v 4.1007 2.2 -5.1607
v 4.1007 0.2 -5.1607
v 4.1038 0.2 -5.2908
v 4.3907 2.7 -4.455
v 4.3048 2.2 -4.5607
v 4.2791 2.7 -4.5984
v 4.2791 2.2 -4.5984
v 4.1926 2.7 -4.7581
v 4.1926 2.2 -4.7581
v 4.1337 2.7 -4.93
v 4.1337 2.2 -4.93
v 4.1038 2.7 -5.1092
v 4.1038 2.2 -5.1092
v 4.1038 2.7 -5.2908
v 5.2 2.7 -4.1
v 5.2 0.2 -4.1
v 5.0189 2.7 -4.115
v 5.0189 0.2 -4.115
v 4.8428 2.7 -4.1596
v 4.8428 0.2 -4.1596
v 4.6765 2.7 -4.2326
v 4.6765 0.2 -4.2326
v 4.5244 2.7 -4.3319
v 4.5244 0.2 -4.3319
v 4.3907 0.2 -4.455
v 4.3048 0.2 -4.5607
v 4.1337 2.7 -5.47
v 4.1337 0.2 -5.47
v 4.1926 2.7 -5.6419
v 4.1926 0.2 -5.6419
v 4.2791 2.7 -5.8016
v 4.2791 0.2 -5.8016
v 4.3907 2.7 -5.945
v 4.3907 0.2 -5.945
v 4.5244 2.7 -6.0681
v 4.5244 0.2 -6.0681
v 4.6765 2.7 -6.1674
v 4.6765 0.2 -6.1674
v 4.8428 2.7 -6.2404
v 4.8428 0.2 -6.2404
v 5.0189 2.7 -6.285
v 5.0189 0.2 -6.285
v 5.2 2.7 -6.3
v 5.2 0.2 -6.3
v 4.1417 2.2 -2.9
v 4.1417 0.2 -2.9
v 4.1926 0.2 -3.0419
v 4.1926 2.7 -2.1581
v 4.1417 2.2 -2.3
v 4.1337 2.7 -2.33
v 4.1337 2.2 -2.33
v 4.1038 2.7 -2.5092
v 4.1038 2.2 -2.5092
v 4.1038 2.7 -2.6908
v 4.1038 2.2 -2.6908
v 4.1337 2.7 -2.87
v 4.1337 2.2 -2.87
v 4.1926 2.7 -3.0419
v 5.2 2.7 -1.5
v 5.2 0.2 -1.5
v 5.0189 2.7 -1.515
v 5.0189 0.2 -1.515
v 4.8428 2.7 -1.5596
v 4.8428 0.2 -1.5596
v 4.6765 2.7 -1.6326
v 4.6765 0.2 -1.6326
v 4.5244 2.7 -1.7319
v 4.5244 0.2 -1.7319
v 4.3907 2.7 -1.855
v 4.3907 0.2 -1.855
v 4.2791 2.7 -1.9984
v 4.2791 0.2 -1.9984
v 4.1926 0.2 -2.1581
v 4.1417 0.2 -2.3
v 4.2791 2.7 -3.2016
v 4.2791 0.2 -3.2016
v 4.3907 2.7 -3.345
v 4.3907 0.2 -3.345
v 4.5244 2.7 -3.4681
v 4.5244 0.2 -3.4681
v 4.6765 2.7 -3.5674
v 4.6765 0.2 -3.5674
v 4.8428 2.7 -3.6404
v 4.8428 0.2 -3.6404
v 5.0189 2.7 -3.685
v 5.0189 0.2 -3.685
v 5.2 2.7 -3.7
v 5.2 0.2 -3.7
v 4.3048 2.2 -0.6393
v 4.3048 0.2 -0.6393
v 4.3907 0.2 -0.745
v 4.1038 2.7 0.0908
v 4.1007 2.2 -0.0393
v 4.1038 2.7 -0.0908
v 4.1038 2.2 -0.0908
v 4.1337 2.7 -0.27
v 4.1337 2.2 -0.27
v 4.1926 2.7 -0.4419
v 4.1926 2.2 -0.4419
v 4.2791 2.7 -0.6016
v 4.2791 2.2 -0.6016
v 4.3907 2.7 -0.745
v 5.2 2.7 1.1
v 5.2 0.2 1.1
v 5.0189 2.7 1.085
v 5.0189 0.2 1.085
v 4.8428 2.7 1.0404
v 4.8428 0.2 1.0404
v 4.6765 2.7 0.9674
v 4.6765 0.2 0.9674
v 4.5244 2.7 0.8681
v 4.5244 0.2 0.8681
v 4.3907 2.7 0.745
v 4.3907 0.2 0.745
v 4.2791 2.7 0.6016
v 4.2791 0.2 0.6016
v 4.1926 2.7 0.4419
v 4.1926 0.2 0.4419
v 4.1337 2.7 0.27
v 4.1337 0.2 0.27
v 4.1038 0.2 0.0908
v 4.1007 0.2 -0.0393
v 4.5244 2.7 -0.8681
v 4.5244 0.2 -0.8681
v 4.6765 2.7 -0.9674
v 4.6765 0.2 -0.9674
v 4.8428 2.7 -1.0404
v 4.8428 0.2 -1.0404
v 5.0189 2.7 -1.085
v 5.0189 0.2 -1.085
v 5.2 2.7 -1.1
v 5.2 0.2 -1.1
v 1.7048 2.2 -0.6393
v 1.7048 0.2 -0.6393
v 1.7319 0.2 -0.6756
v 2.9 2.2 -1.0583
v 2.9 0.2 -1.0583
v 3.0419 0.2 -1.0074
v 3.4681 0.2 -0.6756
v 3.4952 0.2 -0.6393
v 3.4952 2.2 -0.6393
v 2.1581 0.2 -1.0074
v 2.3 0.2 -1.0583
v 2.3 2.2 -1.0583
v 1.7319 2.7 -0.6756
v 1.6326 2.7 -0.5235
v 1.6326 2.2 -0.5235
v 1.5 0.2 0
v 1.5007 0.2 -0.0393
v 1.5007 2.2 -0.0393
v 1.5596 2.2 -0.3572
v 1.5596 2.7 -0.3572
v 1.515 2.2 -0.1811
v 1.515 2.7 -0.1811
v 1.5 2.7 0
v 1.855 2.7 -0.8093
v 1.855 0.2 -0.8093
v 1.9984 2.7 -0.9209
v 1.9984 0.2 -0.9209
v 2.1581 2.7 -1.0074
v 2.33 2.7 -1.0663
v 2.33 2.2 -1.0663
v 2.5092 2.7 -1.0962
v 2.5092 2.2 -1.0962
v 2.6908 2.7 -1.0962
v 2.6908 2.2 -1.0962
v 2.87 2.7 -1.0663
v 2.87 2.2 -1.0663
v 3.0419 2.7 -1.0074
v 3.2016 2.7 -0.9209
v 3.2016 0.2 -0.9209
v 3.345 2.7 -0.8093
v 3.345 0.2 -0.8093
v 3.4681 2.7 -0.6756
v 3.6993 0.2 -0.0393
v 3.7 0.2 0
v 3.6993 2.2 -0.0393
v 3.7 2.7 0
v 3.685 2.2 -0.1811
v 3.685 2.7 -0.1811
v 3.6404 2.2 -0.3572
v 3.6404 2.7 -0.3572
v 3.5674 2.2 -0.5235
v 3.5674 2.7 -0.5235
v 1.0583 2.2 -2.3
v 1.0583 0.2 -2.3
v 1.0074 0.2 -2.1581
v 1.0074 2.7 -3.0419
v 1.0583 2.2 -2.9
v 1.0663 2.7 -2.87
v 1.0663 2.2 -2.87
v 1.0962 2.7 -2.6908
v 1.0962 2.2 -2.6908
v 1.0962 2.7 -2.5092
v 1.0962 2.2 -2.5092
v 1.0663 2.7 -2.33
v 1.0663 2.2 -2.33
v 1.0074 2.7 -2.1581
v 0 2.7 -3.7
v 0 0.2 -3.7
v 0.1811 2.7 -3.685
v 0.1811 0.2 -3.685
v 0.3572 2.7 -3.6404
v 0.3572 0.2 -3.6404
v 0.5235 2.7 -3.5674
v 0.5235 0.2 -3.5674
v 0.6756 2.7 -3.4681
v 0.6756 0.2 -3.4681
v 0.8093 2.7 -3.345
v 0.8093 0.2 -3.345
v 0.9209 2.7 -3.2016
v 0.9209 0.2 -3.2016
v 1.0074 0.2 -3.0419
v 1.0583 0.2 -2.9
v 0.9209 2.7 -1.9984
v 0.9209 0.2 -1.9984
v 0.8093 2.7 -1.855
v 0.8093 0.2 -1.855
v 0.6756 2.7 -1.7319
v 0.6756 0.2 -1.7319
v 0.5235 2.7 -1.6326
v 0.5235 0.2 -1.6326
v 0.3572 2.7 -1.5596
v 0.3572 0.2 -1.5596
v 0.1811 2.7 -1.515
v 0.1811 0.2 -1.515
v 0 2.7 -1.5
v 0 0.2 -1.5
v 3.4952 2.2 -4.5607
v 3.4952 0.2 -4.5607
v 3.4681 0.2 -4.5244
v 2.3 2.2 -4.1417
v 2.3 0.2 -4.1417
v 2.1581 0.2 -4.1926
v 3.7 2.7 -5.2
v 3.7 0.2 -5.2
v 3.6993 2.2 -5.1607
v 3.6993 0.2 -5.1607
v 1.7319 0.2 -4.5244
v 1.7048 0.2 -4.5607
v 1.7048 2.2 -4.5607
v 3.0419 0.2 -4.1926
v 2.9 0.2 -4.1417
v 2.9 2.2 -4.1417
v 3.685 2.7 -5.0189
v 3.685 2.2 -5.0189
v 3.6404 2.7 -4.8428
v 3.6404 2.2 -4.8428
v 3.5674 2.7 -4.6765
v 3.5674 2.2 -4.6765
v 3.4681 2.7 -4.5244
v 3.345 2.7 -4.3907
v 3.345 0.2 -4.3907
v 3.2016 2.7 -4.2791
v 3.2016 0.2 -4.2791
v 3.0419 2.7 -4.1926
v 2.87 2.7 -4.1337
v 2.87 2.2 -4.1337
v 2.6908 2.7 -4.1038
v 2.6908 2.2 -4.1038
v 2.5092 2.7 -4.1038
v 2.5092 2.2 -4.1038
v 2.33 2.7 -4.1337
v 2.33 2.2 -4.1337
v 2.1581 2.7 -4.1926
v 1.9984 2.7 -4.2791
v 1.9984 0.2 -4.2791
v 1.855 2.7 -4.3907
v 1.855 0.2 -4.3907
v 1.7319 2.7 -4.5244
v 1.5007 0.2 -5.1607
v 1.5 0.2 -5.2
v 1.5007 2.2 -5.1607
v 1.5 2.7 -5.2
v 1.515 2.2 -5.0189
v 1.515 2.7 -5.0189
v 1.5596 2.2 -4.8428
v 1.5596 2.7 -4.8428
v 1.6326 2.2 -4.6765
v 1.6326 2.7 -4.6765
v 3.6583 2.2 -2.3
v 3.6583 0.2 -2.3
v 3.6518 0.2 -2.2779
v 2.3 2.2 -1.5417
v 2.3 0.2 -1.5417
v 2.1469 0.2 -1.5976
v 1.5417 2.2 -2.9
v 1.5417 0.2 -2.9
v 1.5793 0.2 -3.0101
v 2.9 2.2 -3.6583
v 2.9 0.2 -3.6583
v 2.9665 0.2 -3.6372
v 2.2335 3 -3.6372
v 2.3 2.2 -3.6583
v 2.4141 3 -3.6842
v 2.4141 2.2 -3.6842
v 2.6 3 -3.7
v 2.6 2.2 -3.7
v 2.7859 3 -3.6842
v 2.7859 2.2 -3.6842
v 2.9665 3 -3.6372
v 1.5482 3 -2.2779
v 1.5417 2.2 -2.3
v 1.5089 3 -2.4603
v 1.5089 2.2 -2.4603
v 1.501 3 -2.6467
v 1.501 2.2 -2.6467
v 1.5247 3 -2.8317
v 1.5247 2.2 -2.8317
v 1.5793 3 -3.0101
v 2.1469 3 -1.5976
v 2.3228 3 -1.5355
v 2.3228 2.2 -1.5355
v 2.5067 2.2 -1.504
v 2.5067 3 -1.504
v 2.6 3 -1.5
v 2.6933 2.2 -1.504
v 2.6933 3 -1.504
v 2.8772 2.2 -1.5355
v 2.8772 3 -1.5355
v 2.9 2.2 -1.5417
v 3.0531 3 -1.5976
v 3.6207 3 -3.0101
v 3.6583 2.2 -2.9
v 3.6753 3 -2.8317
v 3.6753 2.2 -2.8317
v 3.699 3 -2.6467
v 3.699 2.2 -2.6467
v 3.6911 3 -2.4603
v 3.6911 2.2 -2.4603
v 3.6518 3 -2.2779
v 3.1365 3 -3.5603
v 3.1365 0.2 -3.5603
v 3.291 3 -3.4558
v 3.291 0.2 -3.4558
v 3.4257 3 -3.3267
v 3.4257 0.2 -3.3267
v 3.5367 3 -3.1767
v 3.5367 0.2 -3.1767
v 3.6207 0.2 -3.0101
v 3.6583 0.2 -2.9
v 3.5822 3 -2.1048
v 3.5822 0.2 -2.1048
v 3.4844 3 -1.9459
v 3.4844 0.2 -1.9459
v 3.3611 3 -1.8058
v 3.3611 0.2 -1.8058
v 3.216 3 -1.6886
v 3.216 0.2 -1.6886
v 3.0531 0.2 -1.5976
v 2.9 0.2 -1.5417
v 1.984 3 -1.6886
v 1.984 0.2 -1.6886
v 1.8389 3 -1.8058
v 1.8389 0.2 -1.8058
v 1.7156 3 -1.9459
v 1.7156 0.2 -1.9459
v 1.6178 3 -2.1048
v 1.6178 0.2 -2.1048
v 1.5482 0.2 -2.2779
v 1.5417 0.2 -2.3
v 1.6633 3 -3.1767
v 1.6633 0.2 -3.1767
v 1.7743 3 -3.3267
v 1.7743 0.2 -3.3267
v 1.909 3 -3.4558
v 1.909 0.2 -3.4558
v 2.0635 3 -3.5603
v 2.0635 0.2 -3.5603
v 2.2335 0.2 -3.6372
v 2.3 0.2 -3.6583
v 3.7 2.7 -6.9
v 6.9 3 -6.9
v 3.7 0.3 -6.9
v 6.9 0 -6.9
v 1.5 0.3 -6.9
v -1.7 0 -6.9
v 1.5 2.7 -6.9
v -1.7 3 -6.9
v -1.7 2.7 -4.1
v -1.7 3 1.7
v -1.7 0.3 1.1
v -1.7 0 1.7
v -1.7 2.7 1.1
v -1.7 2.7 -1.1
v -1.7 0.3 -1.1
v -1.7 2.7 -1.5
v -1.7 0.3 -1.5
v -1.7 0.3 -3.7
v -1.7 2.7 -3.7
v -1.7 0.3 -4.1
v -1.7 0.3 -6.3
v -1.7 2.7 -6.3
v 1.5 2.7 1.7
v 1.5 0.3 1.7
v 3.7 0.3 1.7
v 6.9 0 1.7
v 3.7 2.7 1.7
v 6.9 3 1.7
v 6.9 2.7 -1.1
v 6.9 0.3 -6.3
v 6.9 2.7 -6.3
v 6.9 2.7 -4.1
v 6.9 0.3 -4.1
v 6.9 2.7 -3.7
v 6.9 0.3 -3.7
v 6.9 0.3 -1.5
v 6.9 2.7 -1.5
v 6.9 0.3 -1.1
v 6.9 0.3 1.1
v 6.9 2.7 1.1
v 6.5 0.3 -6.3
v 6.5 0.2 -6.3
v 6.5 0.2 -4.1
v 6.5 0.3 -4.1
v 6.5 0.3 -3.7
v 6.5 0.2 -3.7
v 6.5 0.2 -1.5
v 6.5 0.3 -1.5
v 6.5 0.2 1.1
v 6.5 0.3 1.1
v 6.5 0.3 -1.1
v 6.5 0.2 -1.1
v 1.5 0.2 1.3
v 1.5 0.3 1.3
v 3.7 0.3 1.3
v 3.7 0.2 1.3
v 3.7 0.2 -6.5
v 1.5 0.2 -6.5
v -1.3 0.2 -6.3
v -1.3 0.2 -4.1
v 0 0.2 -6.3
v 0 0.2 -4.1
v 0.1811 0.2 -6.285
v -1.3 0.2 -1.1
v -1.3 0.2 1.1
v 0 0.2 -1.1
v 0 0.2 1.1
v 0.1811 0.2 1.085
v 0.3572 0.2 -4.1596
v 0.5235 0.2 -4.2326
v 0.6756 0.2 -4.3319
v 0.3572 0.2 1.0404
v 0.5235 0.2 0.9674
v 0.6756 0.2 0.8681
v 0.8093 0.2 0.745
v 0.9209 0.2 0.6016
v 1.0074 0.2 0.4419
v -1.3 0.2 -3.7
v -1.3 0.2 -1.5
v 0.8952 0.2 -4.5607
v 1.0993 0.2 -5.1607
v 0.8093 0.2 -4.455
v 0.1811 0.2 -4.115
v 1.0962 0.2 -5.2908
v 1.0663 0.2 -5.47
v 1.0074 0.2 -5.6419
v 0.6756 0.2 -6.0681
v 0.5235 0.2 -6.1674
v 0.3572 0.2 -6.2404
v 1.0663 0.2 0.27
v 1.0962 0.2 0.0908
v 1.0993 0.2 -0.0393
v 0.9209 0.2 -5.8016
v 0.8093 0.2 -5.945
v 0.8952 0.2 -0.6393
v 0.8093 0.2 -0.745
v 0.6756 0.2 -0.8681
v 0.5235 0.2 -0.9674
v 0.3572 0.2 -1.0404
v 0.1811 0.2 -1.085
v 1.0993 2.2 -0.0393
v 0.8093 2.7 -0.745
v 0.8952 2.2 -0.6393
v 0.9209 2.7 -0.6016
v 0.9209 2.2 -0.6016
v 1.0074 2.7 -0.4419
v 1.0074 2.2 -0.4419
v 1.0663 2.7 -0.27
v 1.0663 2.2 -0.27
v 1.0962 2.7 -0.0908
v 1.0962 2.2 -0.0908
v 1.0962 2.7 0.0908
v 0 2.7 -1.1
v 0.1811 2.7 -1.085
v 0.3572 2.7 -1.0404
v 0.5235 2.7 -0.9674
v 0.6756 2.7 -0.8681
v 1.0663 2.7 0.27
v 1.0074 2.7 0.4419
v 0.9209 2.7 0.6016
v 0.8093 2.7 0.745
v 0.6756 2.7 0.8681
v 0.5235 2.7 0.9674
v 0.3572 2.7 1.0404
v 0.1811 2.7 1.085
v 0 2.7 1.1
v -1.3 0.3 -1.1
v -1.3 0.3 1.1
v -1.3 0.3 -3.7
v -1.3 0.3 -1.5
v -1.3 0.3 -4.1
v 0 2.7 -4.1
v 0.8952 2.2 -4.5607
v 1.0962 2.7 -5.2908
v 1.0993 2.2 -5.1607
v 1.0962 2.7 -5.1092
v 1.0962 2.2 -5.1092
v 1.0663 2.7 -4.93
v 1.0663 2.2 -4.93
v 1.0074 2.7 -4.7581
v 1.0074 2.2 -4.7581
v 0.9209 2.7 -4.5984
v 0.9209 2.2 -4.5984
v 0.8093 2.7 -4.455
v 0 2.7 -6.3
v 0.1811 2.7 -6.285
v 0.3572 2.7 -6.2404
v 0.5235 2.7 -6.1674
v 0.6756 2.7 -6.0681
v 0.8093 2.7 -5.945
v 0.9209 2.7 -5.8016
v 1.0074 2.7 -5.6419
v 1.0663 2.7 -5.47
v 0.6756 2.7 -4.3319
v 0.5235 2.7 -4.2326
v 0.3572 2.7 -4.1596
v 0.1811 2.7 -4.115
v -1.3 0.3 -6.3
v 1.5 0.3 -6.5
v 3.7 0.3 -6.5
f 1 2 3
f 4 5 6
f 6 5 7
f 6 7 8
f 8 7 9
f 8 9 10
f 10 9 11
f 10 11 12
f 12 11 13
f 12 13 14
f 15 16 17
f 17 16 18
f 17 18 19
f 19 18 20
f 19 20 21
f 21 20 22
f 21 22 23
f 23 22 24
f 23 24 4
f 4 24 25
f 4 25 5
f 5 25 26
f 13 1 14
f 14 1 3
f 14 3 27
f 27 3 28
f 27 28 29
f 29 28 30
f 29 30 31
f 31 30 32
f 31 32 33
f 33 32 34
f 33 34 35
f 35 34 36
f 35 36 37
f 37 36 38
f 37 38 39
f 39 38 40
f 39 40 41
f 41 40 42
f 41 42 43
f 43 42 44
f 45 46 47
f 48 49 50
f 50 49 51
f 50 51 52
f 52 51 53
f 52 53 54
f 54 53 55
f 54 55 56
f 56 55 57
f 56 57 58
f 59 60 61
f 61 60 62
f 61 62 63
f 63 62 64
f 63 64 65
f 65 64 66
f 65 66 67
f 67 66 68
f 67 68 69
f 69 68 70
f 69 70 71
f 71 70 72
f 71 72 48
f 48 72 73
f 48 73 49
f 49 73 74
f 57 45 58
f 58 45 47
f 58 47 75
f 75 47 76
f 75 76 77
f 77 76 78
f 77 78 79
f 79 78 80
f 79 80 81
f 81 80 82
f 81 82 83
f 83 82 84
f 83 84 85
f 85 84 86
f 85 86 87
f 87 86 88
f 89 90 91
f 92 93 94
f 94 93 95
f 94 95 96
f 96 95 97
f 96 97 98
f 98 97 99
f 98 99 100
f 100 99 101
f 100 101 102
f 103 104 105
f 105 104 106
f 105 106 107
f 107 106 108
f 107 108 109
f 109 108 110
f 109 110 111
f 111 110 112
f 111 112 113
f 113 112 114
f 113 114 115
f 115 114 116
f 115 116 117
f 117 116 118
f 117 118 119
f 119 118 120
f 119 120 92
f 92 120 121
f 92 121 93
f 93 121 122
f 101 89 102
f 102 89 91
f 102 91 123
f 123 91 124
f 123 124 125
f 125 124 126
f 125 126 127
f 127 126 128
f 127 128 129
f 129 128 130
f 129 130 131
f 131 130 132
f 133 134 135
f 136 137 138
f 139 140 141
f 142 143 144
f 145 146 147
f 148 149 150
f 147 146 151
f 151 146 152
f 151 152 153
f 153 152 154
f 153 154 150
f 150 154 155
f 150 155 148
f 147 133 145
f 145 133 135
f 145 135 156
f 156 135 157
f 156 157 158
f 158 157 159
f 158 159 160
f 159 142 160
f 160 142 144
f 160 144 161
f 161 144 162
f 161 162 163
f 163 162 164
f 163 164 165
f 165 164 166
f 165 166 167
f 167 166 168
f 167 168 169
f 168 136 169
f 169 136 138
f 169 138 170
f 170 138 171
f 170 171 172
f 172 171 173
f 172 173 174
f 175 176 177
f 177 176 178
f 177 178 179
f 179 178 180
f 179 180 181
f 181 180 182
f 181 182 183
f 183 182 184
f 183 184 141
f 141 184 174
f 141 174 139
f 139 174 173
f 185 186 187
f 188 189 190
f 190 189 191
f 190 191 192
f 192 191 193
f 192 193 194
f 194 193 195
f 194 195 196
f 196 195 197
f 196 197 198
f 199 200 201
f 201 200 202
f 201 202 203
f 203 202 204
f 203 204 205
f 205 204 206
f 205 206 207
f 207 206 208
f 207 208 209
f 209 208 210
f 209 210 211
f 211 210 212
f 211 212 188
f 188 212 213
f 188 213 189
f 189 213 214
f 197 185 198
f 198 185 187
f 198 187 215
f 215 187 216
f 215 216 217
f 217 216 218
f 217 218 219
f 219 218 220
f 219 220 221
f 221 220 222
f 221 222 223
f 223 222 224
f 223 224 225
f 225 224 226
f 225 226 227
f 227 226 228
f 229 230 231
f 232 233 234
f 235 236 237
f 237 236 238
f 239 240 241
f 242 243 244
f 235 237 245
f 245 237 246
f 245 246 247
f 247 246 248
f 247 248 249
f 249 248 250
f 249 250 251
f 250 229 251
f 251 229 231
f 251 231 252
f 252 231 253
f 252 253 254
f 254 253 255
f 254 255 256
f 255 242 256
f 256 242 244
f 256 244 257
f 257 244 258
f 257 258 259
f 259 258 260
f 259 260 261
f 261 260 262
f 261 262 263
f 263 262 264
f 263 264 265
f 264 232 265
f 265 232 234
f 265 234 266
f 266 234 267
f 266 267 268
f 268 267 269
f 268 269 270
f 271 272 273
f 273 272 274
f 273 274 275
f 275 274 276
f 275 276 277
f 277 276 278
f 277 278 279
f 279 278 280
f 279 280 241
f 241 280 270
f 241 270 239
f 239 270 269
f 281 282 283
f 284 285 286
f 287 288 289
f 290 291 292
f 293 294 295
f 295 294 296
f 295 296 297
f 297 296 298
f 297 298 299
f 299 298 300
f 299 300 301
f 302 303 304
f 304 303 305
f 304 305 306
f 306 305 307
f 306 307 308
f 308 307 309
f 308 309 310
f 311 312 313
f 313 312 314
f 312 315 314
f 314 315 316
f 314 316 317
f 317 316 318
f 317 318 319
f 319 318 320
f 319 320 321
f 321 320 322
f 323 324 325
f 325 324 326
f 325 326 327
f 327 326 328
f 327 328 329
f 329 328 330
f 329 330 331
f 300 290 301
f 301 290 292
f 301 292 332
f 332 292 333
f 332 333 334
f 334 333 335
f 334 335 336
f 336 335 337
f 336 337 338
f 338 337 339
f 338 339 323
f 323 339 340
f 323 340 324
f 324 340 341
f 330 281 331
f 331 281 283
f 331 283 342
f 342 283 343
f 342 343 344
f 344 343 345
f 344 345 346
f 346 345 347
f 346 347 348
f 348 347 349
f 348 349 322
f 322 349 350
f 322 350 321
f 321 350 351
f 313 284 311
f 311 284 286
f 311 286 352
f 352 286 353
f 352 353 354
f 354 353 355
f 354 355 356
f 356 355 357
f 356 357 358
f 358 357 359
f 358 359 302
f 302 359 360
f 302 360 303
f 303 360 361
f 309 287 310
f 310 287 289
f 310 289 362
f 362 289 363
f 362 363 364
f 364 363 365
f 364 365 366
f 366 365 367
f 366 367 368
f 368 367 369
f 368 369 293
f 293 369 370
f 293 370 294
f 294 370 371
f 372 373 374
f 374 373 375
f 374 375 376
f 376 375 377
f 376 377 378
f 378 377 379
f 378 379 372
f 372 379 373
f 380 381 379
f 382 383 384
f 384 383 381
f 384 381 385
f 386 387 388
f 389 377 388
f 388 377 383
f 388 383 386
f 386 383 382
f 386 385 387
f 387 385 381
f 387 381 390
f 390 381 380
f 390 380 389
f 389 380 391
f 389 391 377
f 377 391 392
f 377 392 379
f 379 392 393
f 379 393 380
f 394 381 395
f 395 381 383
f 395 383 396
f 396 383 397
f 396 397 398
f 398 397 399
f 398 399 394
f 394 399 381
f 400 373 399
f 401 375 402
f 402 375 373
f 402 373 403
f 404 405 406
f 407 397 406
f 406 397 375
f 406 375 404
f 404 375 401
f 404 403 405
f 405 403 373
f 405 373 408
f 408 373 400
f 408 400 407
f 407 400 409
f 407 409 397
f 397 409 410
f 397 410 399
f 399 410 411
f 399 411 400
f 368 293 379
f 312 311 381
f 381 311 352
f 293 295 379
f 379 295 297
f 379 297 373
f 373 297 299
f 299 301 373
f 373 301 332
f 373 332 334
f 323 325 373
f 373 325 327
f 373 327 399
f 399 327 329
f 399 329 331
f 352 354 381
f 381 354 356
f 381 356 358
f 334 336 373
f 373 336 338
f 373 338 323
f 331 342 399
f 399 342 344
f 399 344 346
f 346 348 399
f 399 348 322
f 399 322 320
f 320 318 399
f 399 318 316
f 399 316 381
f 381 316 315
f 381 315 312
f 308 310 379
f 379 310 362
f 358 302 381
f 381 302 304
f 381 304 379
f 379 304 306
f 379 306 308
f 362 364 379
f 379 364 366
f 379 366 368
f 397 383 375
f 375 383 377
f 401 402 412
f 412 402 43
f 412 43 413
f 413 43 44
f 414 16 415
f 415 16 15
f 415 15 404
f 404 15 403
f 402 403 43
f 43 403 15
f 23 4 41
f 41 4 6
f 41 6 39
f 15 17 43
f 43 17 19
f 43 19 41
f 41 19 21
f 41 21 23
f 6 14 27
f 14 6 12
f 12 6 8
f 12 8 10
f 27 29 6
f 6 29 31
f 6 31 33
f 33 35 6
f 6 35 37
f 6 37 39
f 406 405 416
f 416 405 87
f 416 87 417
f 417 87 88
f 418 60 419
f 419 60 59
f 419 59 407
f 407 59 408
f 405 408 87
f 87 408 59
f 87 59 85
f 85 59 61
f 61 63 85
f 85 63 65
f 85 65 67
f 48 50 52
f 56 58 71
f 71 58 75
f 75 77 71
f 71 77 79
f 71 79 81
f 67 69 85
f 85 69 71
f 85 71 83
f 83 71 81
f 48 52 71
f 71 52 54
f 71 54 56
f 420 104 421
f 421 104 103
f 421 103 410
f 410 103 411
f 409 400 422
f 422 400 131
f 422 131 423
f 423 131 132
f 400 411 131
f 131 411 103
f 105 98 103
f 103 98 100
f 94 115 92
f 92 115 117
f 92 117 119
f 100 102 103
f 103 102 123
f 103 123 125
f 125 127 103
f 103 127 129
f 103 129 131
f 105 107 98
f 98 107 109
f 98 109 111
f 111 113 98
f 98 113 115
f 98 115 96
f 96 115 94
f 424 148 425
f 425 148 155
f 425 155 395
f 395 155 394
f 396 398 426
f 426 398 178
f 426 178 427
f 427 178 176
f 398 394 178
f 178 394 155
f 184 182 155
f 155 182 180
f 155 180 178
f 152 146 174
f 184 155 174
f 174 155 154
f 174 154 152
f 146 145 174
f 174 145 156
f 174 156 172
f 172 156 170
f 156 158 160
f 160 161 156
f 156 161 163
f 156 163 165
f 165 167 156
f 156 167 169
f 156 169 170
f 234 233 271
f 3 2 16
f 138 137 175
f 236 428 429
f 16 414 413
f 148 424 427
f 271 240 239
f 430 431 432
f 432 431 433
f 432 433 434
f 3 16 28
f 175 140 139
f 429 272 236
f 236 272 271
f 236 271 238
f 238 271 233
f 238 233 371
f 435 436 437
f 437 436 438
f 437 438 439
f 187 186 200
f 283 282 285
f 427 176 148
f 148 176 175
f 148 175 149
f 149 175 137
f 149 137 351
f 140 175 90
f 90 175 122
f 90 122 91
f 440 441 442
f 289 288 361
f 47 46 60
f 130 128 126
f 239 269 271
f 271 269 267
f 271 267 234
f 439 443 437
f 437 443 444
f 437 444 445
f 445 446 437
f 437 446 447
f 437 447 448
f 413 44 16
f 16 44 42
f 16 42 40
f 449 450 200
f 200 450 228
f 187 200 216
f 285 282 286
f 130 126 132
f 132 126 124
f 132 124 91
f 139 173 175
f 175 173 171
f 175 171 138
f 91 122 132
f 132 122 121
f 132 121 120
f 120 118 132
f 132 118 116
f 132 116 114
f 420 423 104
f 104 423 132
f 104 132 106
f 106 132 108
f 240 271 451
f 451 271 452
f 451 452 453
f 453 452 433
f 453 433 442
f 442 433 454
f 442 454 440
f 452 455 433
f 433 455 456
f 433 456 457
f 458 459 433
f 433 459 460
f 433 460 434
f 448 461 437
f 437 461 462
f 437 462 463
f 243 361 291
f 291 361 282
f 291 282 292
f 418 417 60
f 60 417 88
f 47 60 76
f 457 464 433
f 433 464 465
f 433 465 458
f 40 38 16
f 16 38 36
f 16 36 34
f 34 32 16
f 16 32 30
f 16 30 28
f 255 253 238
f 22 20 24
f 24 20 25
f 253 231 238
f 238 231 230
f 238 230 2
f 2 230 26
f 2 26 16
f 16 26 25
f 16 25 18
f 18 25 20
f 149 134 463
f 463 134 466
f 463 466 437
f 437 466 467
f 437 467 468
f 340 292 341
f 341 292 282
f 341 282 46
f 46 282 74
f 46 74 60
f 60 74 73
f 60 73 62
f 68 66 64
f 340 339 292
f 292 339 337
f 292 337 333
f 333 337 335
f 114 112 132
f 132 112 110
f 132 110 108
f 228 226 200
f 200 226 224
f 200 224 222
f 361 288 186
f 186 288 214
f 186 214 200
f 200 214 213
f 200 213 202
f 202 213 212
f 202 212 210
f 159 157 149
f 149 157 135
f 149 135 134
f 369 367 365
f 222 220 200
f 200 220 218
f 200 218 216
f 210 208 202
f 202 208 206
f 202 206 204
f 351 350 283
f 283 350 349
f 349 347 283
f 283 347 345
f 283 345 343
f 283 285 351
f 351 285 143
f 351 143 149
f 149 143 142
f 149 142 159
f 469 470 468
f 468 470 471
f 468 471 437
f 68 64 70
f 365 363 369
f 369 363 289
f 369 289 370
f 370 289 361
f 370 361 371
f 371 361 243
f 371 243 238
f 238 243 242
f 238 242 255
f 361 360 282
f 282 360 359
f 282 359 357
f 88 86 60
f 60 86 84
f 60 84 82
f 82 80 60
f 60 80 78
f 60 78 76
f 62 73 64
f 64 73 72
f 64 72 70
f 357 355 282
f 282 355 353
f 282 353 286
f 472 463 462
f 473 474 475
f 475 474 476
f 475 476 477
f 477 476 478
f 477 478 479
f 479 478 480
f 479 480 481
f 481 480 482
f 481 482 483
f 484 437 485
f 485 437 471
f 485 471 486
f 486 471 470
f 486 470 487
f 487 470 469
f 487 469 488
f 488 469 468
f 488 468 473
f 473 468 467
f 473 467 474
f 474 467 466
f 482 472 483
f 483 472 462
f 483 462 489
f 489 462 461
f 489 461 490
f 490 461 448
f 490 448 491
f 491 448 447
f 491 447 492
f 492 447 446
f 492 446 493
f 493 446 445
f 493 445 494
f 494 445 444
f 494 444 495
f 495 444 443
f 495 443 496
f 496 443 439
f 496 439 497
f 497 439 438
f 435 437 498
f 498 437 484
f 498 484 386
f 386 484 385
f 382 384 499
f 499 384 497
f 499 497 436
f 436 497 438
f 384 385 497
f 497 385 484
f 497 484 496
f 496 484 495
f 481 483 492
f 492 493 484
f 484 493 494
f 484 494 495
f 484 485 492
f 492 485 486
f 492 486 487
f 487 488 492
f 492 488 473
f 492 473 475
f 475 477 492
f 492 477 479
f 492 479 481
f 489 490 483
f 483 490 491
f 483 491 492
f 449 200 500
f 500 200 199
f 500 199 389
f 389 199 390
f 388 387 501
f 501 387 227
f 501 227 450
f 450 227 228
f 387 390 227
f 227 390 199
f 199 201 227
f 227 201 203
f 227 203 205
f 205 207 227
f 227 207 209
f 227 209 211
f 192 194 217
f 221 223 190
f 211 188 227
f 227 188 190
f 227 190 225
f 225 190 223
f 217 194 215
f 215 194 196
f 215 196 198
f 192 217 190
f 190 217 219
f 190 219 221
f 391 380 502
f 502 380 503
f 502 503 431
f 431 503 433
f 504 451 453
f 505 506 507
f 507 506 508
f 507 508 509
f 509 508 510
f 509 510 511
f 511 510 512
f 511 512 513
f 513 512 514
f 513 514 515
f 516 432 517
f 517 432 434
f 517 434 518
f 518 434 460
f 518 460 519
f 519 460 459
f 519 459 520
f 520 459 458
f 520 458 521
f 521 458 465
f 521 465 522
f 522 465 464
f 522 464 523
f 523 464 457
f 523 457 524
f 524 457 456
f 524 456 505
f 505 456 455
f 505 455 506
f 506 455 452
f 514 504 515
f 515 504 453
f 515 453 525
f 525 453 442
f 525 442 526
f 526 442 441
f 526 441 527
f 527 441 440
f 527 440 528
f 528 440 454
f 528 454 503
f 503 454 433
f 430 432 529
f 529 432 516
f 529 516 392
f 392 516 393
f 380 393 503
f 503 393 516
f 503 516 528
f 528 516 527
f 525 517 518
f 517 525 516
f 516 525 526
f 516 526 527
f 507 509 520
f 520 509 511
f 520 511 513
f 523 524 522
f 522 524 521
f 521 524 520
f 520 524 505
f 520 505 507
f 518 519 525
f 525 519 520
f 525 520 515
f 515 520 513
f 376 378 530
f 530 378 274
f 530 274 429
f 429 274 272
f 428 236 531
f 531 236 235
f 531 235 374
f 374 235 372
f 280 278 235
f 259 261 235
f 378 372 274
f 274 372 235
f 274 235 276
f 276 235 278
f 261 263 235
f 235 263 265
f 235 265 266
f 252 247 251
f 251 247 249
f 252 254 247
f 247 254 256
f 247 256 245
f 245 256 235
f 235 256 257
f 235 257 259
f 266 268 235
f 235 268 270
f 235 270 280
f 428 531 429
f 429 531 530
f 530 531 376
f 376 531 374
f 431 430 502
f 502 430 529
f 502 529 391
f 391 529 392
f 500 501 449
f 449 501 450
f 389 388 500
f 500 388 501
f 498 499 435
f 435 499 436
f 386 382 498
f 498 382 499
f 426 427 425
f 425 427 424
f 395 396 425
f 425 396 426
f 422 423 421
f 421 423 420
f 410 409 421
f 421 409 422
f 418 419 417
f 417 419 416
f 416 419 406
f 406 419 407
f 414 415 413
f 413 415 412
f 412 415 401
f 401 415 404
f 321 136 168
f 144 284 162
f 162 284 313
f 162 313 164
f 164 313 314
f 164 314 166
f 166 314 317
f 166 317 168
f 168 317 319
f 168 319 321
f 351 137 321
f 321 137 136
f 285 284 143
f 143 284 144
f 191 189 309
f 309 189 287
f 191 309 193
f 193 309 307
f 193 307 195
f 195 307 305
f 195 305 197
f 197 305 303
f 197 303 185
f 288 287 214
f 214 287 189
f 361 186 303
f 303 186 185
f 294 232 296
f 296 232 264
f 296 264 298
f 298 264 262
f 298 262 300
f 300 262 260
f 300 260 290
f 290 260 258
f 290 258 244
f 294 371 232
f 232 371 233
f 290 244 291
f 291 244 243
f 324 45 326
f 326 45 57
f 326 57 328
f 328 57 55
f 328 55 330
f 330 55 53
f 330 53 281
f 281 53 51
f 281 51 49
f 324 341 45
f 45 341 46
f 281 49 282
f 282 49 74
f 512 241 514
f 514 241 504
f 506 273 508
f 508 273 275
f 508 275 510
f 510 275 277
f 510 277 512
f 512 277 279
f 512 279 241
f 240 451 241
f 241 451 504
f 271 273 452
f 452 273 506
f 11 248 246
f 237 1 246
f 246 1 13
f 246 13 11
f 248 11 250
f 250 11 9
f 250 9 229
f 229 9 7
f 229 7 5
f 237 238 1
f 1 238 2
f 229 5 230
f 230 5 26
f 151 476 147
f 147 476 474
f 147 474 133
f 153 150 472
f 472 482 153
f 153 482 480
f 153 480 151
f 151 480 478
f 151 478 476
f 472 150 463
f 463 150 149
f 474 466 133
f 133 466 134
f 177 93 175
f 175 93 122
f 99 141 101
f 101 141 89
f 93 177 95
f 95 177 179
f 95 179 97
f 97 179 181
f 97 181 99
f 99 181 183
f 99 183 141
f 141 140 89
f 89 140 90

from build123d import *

# Parameters (mm, degrees)
SKETCH1_W           = 8.6
SKETCH1_H           = 8.6
BOSS_EXTRUDE1_DEPTH = 3
CUT_EXTRUDE1_START  = 0.2
SKETCH1_14_R        = 1.1
CUT_EXTRUDE1_DEPTH  = 2.5
CUT_EXTRUDE2_START  = 0.2
SKETCH1_15_R        = 1.1
CUT_EXTRUDE2_DEPTH  = 2.8
BOSS_EXTRUDE2_START = -0.3
SKETCH2_W           = 7.8
SKETCH2_H           = 0.4
SKETCH2_W_2         = 0.4
SKETCH2_H_2         = 7.8
BOSS_EXTRUDE2_DEPTH = 0.1
CUT_EXTRUDE3_START  = -0.2
SKETCH3_W           = 0.6
SKETCH3_H           = 0.162741788
SKETCH3_H_2         = 0.6
CUT_EXTRUDE3_DEPTH  = 2


with BuildPart() as part:
    # Sketch1 → Boss-Extrude1 (new body)
    with BuildSketch(Plane(origin=(0, 0, 0), x_dir=(1, 0, 0), z_dir=(0, 1, 0))):
        with Locations((2.6, 2.6)):
            Rectangle(SKETCH1_W, SKETCH1_H)
    extrude(amount=BOSS_EXTRUDE1_DEPTH)

    # Sketch1<14> → Cut-Extrude1 (cut)
    with BuildSketch(Plane(origin=(0, 0, 0), x_dir=(1, 0, 0), z_dir=(0, 1, 0)).offset(CUT_EXTRUDE1_START)):
        Circle(SKETCH1_14_R)
        with BuildLine():
            Line((0, 1.1), (-1.7, 1.1))
            Line((-1.7, 1.1), (-1.7, -1.1))
            Line((-1.7, -1.1), (-0.1, -1.1))
            Line((-0.1, -1.1), (0, -1.1))
            ThreePointArc((0, -1.1), (-1.1, 0), (0, 1.1))
        make_face()
        with Locations((2.6, 0)):
            Circle(SKETCH1_14_R)
        with BuildLine():
            Line((1.5, -1.7), (3.7, -1.7))
            Line((3.7, -1.7), (3.7, 0))
            ThreePointArc((3.7, 0), (2.6, -1.1), (1.5, 0))
            Line((1.5, 0), (1.5, -1.7))
        make_face()
        with Locations((5.2, 0)):
            Circle(SKETCH1_14_R)
        with BuildLine():
            Line((6.9, -1.1), (6.9, 1.1))
            Line((6.9, 1.1), (5.2, 1.1))
            ThreePointArc((5.2, 1.1), (5.977817459, 0.777817459), (6.3, 0))
            ThreePointArc((6.3, 0), (5.977817459, -0.777817459), (5.2, -1.1))
            Line((5.2, -1.1), (6.9, -1.1))
        make_face()
        with BuildLine():
            Line((6.9, 1.5), (6.9, 3.7))
            Line((6.9, 3.7), (5.2, 3.7))
            ThreePointArc((5.2, 3.7), (5.977817459, 3.377817459), (6.3, 2.6))
            ThreePointArc((6.3, 2.6), (5.977817459, 1.822182541), (5.2, 1.5))
            Line((5.2, 1.5), (6.9, 1.5))
        make_face()
        with Locations((5.2, 2.6)):
            Circle(SKETCH1_14_R)
        with BuildLine():
            Line((6.9, 4.1), (6.9, 6.3))
            Line((6.9, 6.3), (5.2, 6.3))
            ThreePointArc((5.2, 6.3), (5.977817459, 5.977817459), (6.3, 5.2))
            ThreePointArc((6.3, 5.2), (5.977817459, 4.422182541), (5.2, 4.1))
            Line((5.2, 4.1), (6.9, 4.1))
        make_face()
        with Locations((5.2, 5.2)):
            Circle(SKETCH1_14_R)
        with BuildLine():
            Line((3.7, 5.2), (3.7, 6.9))
            Line((3.7, 6.9), (1.5, 6.9))
            Line((1.5, 6.9), (1.5, 5.2))
            ThreePointArc((1.5, 5.2), (2.6, 6.3), (3.7, 5.2))
        make_face()
        with Locations((2.6, 5.2)):
            Circle(SKETCH1_14_R)
        with Locations((0, 2.6)):
            Circle(SKETCH1_14_R)
        with BuildLine():
            Line((0, 3.7), (-1.7, 3.7))
            Line((-1.7, 3.7), (-1.7, 1.5))
            Line((-1.7, 1.5), (0, 1.5))
            ThreePointArc((0, 1.5), (-1.1, 2.6), (0, 3.7))
        make_face()
        with BuildLine():
            Line((-0.9, 6.3), (-1.7, 6.3))
            Line((-1.7, 6.3), (-1.7, 4.1))
            Line((-1.7, 4.1), (0, 4.1))
            ThreePointArc((0, 4.1), (-1.1, 5.2), (0, 6.3))
            Line((0, 6.3), (-0.9, 6.3))
        make_face()
        with Locations((0, 5.2)):
            Circle(SKETCH1_14_R)
    extrude(amount=CUT_EXTRUDE1_DEPTH, mode=Mode.SUBTRACT)

    # Sketch1<15> → Cut-Extrude2 (cut)
    with BuildSketch(Plane(origin=(0, 0, 0), x_dir=(1, 0, 0), z_dir=(0, 1, 0)).offset(CUT_EXTRUDE2_START)):
        with Locations(Location((2.6, 2.6, 0), (0, 0, 270))):
            Circle(SKETCH1_15_R)
    extrude(amount=CUT_EXTRUDE2_DEPTH, mode=Mode.SUBTRACT)

    # Sketch2 → Boss-Extrude2 (add)
    with BuildSketch(Plane.XZ.offset(BOSS_EXTRUDE2_START)):
        with Locations((2.6, 1.5)):
            Rectangle(SKETCH2_W, SKETCH2_H)
        with Locations((-1.5, -2.6)):
            Rectangle(SKETCH2_W_2, SKETCH2_H_2)
        with Locations((2.6, -6.7)):
            Rectangle(SKETCH2_W, SKETCH2_H)
        with Locations((6.7, -2.6)):
            Rectangle(SKETCH2_W_2, SKETCH2_H_2)
    extrude(amount=BOSS_EXTRUDE2_DEPTH)

    # Sketch3 → Cut-Extrude3 (cut)
    with BuildSketch(Plane.XZ.offset(CUT_EXTRUDE3_START)):
        Polygon((0.476549662, -0.03929145), (0.476549662, -0.591206698), (0.874813971, -0.246872241), (1.214094825, -0.63929145), (2.3, -0.63929145), (2.3, -0.476549662), (2.9, -0.476549662), (2.9, -0.63929145), (3.985905175, -0.63929145), (4.325186029, -0.246872241), (4.723450338, -0.591206698), (4.723450338, -0.03929145), align=None)
        with Locations((2.6, -0.557920556)):
            Rectangle(SKETCH3_W, SKETCH3_H)
        Polygon((0.874813971, -0.246872241), (0.476549662, -0.591206698), (0.476549662, -0.63929145), (1.214094825, -0.63929145), align=None)
        Polygon((4.325186029, -0.246872241), (3.985905175, -0.63929145), (4.723450338, -0.63929145), (4.723450338, -0.591206698), align=None)
        Polygon((3.343237824, -2.3), (2.9, -2.3), (2.9, -2.9), (3.304728308, -2.9), (4.723450338, -2.9), (4.723450338, -2.3), align=None)
        with Locations((2.6, -2.6)):
            Rectangle(SKETCH3_W, SKETCH3_H_2)
        Polygon((2.3, -2.3), (1.856762176, -2.3), (0.476549662, -2.3), (0.476549662, -2.9), (1.856762176, -2.9), (2.3, -2.9), align=None)
        Polygon((2.9, -2.9), (2.3, -2.9), (2.3, -3.304728308), (2.3, -4.56070855), (2.9, -4.56070855), (2.9, -3.343237824), align=None)
        Polygon((2.3, -1.895271692), (2.3, -2.3), (2.9, -2.3), (2.9, -1.895271692), (2.9, -0.63929145), (2.3, -0.63929145), align=None)
        with Locations((2.6, -4.642079444)):
            Rectangle(SKETCH3_W, SKETCH3_H)
        Polygon((2.3, -4.723450338), (2.3, -4.56070855), (1.214094825, -4.56070855), (0.874813971, -4.953127759), (0.476549662, -4.608793302), (0.476549662, -5.16070855), (4.723450338, -5.16070855), (4.723450338, -4.590835654), (4.56070855, -4.779066151), (4.308151662, -4.56070855), (2.9, -4.56070855), (2.9, -4.723450338), align=None)
        Polygon((0.874813971, -4.953127759), (1.214094825, -4.56070855), (0.476549662, -4.56070855), (0.476549662, -4.608793302), align=None)
        Polygon((4.723450338, -4.56070855), (4.308151662, -4.56070855), (4.56070855, -4.779066151), (4.723450338, -4.590835654), align=None)
    extrude(amount=-CUT_EXTRUDE3_DEPTH, mode=Mode.SUBTRACT)


solid = part.part
